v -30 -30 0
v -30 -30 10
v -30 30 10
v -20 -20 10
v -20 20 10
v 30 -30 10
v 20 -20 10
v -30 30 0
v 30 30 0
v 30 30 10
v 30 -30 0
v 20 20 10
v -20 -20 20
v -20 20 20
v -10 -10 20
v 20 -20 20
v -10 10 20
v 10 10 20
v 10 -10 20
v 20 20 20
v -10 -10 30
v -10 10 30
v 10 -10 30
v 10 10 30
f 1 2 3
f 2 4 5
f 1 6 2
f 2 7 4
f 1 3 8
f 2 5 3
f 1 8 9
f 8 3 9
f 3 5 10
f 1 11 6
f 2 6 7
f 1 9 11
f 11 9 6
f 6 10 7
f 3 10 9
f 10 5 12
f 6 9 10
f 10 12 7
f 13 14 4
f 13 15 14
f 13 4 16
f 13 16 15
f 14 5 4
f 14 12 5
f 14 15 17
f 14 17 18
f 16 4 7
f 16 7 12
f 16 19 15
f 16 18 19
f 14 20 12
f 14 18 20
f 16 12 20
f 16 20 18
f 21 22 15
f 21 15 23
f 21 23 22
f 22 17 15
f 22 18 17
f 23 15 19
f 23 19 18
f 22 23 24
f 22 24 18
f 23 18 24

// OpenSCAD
// 3段の階段状ピラミッド

// 各段のパラメータ: [一辺の長さ, 高さ]
steps = [
    [60, 10],
    [40, 10],
    [20, 10]
];

module step_pyramid(steps) {
    z = 0;
    for (i = [0 : len(steps) - 1]) {
        // i段目までの高さの合計を求める
        translate([0, 0, i == 0 ? 0 :
            // 下の段の高さを積算
            add_heights(steps, i)])
            cube([steps[i][0], steps[i][0], steps[i][1]], center = false);
    }
}

// 0段目から (n-1) 段目までの高さの合計
function add_heights(steps, n) =
    n <= 0 ? 0 : steps[n - 1][1] + add_heights(steps, n - 1);

// 中心を揃えて積み上げる
for (i = [0 : len(steps) - 1])
    translate([-steps[i][0] / 2, -steps[i][0] / 2, add_heights(steps, i)])
        cube([steps[i][0], steps[i][0], steps[i][1]]);
